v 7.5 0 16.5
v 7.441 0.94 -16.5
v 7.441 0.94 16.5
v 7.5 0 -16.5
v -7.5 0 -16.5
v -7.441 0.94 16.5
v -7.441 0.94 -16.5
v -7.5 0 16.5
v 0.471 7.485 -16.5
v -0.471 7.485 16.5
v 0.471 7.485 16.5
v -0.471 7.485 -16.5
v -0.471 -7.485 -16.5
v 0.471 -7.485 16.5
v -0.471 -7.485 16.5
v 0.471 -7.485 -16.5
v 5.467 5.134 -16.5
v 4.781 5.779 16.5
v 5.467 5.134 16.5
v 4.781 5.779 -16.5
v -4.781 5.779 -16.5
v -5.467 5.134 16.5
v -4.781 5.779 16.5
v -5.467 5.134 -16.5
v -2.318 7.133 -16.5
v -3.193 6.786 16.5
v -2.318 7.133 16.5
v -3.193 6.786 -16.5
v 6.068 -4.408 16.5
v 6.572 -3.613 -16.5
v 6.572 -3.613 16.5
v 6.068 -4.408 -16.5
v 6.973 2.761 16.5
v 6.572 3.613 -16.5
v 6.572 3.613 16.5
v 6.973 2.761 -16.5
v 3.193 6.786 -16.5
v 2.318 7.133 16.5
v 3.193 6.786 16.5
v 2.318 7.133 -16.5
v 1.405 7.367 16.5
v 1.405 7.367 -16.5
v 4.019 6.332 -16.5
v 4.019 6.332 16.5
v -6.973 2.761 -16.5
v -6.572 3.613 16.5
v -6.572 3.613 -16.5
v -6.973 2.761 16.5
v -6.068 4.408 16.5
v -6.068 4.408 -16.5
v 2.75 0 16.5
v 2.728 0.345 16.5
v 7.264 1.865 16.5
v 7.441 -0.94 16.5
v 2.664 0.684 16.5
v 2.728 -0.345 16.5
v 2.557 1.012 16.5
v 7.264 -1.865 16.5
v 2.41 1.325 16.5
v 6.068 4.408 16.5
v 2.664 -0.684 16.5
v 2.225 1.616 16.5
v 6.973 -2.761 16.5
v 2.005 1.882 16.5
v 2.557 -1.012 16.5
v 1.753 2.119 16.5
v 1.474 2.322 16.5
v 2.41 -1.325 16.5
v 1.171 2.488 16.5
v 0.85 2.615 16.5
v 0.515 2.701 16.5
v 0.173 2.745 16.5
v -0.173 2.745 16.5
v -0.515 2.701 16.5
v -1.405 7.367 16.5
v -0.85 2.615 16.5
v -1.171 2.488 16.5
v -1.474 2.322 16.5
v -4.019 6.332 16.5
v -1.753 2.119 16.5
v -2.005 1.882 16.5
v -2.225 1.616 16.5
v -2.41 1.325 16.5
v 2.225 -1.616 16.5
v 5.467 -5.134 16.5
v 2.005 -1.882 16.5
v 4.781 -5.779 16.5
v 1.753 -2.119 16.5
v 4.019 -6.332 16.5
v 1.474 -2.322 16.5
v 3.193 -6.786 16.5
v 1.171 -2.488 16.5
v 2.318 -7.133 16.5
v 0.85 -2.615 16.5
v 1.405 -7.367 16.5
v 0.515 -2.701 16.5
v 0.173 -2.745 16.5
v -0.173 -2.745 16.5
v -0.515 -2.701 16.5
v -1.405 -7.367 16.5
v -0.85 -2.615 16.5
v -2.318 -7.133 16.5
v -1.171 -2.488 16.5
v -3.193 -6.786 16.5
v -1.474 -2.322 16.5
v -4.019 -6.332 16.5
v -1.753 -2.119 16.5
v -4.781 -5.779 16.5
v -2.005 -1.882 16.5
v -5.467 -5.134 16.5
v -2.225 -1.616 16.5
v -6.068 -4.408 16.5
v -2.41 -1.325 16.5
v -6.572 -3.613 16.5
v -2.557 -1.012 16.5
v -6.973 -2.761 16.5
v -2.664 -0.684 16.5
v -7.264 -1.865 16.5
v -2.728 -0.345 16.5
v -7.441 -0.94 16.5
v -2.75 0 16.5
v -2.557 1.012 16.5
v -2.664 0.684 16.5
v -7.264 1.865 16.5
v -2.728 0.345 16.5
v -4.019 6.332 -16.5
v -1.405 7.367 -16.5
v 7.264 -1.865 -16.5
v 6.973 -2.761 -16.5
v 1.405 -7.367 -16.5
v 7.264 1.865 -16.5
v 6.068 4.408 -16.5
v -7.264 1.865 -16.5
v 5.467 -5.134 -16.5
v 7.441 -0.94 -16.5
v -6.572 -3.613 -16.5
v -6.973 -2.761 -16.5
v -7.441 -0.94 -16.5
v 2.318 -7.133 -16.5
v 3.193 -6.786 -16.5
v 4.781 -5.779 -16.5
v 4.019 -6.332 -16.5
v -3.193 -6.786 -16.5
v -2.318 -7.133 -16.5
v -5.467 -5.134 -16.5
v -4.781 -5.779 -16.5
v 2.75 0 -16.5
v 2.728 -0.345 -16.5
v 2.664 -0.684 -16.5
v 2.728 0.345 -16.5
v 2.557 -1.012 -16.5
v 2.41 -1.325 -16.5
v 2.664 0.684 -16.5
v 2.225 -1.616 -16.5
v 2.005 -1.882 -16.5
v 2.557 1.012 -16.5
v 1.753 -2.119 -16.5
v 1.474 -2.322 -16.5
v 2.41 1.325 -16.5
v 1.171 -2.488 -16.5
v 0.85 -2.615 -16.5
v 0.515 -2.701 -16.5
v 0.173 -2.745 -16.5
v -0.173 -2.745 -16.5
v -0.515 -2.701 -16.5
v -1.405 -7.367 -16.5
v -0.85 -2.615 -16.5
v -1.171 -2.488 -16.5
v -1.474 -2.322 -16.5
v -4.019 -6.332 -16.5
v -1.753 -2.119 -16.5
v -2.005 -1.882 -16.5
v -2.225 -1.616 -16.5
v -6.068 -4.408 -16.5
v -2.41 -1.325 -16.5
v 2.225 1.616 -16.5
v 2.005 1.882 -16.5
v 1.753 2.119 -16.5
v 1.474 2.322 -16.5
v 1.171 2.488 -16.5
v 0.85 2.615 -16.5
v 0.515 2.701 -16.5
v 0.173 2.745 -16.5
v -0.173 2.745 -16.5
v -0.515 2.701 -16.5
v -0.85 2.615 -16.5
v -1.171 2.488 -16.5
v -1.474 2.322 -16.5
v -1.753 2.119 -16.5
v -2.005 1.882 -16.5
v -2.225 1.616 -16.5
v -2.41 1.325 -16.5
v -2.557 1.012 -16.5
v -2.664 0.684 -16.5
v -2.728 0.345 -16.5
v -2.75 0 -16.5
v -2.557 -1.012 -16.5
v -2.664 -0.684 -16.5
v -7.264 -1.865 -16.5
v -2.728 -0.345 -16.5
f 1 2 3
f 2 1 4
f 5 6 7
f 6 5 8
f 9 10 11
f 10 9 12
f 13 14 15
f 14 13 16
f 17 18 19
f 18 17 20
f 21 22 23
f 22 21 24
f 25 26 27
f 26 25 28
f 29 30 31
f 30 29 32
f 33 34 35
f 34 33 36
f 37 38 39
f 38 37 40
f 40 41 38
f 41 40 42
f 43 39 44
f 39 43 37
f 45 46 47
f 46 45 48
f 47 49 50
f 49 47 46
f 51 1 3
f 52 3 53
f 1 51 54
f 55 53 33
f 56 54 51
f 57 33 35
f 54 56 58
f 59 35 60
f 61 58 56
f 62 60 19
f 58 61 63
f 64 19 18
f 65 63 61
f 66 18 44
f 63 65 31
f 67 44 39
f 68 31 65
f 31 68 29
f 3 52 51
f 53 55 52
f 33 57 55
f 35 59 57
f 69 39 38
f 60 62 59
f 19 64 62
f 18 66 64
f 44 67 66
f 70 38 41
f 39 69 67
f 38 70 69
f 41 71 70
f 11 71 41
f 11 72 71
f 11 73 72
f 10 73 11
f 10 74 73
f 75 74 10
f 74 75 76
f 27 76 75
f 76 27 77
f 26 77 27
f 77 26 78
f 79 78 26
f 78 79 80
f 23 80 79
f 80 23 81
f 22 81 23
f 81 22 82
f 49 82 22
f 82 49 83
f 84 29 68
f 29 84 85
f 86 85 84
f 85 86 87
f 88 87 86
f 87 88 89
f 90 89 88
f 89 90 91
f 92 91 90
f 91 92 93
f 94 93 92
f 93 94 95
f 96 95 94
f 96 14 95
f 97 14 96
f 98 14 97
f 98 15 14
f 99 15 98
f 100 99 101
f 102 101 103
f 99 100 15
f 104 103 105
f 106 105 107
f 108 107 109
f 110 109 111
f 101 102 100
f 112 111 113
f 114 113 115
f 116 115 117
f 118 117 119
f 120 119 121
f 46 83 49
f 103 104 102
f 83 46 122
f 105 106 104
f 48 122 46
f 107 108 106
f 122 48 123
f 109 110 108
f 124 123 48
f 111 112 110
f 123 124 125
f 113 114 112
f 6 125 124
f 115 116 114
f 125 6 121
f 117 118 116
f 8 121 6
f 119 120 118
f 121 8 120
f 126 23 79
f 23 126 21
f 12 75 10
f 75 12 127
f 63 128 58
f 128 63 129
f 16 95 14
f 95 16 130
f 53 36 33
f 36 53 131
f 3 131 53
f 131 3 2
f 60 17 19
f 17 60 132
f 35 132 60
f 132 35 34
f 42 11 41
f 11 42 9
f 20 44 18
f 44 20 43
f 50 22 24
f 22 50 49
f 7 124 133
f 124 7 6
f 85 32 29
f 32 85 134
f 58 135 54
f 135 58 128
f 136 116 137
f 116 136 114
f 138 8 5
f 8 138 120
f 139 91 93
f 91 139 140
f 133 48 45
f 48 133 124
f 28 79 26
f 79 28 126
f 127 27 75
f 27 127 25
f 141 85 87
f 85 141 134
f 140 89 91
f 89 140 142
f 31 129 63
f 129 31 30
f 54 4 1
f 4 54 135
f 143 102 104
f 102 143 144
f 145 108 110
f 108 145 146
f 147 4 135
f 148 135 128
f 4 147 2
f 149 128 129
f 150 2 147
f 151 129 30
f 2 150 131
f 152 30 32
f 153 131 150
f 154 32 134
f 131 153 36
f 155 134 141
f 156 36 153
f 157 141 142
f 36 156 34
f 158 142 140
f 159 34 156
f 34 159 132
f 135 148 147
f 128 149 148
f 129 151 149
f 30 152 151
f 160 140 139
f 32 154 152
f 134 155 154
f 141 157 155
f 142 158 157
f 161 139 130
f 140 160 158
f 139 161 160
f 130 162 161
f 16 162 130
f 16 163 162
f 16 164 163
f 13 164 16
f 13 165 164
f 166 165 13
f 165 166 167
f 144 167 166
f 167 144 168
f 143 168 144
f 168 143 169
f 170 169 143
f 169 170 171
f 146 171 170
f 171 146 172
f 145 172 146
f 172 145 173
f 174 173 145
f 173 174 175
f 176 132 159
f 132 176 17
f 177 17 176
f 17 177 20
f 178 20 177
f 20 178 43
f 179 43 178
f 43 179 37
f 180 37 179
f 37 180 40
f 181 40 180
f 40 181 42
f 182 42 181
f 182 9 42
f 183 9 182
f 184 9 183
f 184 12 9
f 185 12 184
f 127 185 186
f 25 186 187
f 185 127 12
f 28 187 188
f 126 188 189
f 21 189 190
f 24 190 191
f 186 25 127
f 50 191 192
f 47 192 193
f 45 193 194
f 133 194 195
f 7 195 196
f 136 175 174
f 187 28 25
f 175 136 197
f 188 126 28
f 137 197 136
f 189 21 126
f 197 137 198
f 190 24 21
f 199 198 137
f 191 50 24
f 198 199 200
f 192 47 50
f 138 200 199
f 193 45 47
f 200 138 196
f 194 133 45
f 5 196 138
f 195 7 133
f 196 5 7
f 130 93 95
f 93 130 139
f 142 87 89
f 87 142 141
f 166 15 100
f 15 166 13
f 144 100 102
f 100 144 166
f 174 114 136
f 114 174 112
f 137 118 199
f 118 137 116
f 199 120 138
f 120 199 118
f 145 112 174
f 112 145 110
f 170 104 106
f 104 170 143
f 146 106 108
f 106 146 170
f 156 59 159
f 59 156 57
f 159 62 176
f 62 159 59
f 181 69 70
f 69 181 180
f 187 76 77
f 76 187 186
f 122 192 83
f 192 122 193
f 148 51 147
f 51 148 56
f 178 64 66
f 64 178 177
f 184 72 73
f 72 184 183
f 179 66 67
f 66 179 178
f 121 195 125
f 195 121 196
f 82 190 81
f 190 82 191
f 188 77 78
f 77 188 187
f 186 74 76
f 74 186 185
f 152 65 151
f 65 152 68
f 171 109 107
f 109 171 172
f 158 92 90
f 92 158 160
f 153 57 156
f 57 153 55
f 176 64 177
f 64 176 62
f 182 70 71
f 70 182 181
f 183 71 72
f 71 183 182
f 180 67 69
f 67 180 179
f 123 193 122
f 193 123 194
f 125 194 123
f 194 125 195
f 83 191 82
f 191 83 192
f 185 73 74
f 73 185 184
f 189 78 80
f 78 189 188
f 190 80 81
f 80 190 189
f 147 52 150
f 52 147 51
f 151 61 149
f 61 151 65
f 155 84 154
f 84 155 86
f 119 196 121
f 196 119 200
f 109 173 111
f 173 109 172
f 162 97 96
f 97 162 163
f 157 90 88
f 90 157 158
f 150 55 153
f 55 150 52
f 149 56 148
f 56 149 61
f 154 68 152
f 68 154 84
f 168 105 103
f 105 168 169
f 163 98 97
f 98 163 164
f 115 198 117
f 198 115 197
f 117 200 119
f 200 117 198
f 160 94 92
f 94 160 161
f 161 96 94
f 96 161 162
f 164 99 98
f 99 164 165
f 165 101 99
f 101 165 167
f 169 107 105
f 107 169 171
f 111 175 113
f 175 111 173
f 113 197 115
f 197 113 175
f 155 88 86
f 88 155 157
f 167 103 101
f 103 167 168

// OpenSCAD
$fn = 50;


difference() {
	union() {
		translate(v = [0, 0, -16.5000000000]) {
			cylinder(h = 33, r = 7.5000000000);
		}
	}
	union() {
		translate(v = [0, 0, -100.0000000000]) {
			cylinder(h = 200, r = 2.7500000000);
		}
	}
}
